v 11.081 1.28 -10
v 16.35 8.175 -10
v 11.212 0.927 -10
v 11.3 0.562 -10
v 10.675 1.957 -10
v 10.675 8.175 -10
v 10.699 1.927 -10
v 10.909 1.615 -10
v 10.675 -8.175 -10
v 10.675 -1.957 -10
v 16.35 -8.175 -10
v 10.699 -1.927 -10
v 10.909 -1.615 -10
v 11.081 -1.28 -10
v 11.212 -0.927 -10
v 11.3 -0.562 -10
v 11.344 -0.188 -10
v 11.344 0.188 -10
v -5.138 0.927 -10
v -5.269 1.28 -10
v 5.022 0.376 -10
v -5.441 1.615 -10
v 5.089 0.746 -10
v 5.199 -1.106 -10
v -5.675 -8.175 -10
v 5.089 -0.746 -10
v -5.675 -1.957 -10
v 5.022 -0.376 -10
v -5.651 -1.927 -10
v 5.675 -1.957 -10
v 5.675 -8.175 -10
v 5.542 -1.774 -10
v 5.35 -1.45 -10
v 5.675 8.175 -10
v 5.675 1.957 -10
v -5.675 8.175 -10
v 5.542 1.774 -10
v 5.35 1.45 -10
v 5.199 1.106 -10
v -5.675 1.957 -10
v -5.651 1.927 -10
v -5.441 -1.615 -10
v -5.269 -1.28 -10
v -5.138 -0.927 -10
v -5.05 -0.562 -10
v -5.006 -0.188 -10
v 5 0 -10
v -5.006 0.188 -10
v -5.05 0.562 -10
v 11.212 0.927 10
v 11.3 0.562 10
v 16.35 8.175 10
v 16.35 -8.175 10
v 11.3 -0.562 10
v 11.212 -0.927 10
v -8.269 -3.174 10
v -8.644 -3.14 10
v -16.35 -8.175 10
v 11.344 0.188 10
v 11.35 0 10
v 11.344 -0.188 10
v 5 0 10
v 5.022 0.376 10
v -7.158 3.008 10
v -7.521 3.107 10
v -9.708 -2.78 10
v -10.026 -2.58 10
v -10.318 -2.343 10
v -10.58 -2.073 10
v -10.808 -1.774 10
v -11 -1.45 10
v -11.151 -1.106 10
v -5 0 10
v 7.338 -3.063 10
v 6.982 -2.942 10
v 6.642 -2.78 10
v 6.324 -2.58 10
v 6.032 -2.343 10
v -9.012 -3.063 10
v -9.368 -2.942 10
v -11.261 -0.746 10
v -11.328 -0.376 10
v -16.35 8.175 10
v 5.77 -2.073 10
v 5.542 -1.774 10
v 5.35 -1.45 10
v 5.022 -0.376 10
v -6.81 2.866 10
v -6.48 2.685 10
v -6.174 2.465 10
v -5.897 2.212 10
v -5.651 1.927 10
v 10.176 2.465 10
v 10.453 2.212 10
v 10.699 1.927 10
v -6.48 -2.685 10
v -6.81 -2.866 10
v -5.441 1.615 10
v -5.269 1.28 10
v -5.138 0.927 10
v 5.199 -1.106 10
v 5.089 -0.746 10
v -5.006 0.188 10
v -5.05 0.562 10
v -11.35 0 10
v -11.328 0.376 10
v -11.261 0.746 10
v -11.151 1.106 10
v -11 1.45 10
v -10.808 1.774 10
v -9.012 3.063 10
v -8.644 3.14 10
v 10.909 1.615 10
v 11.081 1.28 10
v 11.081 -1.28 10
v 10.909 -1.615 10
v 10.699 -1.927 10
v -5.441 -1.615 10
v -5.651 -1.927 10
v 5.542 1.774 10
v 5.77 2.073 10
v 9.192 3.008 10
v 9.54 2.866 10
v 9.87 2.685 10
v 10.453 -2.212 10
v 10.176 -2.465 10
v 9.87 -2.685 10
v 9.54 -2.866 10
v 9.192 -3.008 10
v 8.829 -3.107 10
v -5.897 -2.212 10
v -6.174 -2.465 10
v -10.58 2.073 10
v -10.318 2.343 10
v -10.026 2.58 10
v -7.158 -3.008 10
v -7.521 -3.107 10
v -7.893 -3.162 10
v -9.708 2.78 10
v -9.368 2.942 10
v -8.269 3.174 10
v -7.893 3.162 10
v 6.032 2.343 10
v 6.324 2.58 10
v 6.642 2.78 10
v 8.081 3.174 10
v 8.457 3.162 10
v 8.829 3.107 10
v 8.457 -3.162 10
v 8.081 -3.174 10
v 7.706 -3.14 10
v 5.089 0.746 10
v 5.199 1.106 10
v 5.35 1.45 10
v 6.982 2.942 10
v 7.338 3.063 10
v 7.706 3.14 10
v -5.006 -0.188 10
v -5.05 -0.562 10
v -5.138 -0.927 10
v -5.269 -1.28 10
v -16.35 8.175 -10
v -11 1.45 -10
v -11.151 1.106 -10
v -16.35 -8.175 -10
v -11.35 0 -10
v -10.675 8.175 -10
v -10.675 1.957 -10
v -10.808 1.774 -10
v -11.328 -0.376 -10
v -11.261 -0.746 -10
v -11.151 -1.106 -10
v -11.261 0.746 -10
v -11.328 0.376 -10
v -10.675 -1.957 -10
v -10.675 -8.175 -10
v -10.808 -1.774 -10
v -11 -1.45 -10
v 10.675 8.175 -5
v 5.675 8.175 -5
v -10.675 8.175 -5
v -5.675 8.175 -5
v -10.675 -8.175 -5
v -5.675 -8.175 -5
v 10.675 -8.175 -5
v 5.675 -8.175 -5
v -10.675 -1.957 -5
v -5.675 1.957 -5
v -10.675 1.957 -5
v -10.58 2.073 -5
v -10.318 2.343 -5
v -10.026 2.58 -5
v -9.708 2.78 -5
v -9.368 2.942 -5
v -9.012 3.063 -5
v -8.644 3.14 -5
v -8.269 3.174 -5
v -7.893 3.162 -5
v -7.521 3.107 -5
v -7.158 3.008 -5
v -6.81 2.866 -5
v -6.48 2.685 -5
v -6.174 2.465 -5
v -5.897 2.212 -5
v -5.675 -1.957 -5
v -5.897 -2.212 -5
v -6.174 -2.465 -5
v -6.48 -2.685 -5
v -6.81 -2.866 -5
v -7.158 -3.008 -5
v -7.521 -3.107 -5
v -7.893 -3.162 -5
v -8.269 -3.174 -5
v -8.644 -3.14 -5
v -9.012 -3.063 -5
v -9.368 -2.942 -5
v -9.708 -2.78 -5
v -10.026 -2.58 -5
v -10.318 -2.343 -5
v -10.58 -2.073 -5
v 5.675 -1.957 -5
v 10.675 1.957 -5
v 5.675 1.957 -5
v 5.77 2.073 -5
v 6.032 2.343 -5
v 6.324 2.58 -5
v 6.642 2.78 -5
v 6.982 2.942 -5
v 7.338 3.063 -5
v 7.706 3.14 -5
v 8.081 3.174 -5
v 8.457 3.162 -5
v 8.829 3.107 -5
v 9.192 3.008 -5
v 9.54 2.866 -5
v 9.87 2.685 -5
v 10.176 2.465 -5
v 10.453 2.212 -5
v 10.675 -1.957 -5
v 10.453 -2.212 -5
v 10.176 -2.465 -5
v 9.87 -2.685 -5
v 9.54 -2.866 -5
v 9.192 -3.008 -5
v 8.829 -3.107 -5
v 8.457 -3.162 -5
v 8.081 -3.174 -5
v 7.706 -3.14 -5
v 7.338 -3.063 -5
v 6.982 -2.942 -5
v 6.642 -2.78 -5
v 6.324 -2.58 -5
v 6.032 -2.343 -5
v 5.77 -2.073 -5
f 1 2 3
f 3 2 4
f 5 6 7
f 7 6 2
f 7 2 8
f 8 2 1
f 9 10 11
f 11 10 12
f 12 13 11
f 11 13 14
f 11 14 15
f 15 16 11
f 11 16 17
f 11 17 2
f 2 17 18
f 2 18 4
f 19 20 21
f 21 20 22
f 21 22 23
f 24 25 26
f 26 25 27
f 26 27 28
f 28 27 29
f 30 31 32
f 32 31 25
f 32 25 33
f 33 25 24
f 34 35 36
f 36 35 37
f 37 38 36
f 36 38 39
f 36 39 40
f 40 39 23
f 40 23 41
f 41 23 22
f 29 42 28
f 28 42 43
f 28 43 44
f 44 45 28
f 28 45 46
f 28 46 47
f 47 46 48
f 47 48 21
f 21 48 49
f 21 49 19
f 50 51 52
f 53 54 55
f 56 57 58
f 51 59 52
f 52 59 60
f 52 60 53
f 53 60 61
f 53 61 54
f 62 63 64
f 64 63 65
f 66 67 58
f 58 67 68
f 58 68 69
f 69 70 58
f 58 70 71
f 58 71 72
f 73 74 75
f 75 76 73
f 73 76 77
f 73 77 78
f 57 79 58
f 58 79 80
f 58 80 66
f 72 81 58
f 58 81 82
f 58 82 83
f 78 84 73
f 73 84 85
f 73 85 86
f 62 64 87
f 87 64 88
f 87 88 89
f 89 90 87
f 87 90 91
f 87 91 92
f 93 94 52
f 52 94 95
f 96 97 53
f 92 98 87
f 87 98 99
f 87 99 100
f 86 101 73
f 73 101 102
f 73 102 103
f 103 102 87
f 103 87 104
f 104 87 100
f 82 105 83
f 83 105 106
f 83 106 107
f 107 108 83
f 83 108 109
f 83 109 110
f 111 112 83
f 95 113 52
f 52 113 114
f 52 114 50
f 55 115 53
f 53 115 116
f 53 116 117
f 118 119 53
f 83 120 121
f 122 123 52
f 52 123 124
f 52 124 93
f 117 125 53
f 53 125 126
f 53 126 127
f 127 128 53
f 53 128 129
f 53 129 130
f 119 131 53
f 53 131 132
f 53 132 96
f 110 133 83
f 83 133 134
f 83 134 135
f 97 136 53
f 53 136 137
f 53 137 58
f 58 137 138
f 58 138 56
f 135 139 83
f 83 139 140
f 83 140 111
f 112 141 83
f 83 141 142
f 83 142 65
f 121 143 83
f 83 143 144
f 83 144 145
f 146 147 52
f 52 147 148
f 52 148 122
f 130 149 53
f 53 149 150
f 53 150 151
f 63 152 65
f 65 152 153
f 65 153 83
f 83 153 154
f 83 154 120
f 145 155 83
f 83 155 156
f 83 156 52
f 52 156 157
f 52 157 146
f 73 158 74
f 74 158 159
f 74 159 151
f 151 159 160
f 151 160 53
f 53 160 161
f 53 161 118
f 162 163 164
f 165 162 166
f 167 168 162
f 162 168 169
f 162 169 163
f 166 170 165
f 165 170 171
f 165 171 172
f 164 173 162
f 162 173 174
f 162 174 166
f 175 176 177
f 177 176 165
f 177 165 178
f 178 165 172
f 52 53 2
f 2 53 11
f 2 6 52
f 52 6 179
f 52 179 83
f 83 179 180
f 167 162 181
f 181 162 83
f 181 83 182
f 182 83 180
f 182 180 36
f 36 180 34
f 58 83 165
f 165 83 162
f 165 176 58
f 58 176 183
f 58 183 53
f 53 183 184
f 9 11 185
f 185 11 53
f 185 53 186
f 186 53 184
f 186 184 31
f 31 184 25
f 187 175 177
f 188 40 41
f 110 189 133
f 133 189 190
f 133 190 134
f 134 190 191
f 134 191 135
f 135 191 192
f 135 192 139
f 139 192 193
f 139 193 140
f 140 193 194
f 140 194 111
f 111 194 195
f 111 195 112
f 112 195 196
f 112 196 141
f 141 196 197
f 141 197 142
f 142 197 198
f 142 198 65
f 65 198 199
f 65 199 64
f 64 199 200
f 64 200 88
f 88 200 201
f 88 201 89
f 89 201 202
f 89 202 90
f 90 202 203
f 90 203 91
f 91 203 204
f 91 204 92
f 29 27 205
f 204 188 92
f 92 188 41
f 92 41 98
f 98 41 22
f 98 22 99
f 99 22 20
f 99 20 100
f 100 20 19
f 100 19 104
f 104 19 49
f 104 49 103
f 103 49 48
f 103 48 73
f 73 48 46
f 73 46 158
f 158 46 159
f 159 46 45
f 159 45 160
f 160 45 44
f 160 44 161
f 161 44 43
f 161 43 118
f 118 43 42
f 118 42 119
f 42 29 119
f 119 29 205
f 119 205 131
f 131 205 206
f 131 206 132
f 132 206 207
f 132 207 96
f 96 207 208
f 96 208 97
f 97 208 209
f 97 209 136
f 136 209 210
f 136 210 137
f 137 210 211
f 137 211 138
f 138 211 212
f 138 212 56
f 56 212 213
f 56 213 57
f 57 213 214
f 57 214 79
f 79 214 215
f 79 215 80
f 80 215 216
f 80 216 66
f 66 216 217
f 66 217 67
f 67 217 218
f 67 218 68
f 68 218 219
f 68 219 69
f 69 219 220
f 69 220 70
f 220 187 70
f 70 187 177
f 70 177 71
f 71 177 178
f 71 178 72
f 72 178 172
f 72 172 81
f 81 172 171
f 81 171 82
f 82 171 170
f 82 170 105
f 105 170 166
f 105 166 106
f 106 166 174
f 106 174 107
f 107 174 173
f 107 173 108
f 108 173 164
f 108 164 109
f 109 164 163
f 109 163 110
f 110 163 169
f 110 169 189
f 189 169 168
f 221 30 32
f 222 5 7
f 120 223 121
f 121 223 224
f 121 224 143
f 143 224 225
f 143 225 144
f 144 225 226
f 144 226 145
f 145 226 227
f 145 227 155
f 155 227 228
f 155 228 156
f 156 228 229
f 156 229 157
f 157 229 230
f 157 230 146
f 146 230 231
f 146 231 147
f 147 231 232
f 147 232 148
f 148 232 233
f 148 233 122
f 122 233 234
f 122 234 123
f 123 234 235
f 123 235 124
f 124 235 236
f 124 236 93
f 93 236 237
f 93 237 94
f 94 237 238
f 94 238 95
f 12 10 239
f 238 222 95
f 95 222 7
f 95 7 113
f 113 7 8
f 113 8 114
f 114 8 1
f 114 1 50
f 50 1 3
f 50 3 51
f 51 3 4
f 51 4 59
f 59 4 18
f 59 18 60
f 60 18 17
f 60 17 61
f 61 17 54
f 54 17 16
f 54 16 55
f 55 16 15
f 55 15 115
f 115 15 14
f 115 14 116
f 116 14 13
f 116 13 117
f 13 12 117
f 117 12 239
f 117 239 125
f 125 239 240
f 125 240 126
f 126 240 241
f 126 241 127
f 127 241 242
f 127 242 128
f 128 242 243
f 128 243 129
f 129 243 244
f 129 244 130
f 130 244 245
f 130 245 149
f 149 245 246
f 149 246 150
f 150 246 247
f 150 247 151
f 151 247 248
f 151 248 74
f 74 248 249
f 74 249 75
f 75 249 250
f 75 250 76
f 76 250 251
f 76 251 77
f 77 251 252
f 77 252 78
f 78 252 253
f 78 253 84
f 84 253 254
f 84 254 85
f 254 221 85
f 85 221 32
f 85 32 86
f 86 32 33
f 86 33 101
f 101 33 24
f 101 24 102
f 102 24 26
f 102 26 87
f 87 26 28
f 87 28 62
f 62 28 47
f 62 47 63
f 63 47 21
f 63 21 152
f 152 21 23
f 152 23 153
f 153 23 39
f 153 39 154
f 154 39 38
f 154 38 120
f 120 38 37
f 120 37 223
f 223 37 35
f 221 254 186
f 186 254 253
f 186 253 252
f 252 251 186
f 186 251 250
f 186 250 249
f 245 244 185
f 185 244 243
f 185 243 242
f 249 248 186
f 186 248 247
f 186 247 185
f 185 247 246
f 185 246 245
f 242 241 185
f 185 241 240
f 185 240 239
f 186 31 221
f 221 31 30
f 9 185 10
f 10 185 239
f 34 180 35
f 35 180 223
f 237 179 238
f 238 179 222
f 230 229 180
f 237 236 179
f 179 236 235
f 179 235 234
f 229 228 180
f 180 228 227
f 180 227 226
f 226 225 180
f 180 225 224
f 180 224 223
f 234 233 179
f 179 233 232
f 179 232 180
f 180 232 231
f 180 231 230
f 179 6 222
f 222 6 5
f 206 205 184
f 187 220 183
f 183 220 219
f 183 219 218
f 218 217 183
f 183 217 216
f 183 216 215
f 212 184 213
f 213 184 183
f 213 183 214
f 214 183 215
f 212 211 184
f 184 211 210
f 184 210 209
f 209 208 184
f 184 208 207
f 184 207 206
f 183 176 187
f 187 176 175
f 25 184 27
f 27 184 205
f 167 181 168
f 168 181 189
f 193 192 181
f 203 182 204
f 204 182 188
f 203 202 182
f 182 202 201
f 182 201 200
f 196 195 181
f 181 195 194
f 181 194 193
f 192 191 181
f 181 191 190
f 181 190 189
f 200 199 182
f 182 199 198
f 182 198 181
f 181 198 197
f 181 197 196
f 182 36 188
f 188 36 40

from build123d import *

# Parameters (mm, degrees)
SKETCH1_W           = 32.7
SKETCH1_H           = 16.35
SKETCH1_R           = 3.175
BOSS_EXTRUDE1_DEPTH = 10
SKETCH2_W           = 5
SKETCH2_H           = 16.35
CUT_EXTRUDE1_DEPTH  = 5


with BuildPart() as part:
    # Sketch1 → Boss-Extrude1 (new, symmetric)
    with BuildSketch(Plane.XY):
        Rectangle(SKETCH1_W, SKETCH1_H)
        with Locations((-8.175, 0)):
            Circle(SKETCH1_R, mode=Mode.SUBTRACT)
        with Locations((8.175, 0)):
            Circle(SKETCH1_R, mode=Mode.SUBTRACT)
    extrude(amount=BOSS_EXTRUDE1_DEPTH, both=True)

    # Sketch2 → Cut-Extrude1 (cut)
    with BuildSketch(Plane(origin=(0, 0, -10), x_dir=(-1, 0, 0), z_dir=(0, 0, -1))):
        with Locations((-8.175, 0)):
            Rectangle(SKETCH2_W, SKETCH2_H)
        with Locations((8.175, 0)):
            Rectangle(SKETCH2_W, SKETCH2_H)
    extrude(amount=-CUT_EXTRUDE1_DEPTH, mode=Mode.SUBTRACT)


solid = part.part
